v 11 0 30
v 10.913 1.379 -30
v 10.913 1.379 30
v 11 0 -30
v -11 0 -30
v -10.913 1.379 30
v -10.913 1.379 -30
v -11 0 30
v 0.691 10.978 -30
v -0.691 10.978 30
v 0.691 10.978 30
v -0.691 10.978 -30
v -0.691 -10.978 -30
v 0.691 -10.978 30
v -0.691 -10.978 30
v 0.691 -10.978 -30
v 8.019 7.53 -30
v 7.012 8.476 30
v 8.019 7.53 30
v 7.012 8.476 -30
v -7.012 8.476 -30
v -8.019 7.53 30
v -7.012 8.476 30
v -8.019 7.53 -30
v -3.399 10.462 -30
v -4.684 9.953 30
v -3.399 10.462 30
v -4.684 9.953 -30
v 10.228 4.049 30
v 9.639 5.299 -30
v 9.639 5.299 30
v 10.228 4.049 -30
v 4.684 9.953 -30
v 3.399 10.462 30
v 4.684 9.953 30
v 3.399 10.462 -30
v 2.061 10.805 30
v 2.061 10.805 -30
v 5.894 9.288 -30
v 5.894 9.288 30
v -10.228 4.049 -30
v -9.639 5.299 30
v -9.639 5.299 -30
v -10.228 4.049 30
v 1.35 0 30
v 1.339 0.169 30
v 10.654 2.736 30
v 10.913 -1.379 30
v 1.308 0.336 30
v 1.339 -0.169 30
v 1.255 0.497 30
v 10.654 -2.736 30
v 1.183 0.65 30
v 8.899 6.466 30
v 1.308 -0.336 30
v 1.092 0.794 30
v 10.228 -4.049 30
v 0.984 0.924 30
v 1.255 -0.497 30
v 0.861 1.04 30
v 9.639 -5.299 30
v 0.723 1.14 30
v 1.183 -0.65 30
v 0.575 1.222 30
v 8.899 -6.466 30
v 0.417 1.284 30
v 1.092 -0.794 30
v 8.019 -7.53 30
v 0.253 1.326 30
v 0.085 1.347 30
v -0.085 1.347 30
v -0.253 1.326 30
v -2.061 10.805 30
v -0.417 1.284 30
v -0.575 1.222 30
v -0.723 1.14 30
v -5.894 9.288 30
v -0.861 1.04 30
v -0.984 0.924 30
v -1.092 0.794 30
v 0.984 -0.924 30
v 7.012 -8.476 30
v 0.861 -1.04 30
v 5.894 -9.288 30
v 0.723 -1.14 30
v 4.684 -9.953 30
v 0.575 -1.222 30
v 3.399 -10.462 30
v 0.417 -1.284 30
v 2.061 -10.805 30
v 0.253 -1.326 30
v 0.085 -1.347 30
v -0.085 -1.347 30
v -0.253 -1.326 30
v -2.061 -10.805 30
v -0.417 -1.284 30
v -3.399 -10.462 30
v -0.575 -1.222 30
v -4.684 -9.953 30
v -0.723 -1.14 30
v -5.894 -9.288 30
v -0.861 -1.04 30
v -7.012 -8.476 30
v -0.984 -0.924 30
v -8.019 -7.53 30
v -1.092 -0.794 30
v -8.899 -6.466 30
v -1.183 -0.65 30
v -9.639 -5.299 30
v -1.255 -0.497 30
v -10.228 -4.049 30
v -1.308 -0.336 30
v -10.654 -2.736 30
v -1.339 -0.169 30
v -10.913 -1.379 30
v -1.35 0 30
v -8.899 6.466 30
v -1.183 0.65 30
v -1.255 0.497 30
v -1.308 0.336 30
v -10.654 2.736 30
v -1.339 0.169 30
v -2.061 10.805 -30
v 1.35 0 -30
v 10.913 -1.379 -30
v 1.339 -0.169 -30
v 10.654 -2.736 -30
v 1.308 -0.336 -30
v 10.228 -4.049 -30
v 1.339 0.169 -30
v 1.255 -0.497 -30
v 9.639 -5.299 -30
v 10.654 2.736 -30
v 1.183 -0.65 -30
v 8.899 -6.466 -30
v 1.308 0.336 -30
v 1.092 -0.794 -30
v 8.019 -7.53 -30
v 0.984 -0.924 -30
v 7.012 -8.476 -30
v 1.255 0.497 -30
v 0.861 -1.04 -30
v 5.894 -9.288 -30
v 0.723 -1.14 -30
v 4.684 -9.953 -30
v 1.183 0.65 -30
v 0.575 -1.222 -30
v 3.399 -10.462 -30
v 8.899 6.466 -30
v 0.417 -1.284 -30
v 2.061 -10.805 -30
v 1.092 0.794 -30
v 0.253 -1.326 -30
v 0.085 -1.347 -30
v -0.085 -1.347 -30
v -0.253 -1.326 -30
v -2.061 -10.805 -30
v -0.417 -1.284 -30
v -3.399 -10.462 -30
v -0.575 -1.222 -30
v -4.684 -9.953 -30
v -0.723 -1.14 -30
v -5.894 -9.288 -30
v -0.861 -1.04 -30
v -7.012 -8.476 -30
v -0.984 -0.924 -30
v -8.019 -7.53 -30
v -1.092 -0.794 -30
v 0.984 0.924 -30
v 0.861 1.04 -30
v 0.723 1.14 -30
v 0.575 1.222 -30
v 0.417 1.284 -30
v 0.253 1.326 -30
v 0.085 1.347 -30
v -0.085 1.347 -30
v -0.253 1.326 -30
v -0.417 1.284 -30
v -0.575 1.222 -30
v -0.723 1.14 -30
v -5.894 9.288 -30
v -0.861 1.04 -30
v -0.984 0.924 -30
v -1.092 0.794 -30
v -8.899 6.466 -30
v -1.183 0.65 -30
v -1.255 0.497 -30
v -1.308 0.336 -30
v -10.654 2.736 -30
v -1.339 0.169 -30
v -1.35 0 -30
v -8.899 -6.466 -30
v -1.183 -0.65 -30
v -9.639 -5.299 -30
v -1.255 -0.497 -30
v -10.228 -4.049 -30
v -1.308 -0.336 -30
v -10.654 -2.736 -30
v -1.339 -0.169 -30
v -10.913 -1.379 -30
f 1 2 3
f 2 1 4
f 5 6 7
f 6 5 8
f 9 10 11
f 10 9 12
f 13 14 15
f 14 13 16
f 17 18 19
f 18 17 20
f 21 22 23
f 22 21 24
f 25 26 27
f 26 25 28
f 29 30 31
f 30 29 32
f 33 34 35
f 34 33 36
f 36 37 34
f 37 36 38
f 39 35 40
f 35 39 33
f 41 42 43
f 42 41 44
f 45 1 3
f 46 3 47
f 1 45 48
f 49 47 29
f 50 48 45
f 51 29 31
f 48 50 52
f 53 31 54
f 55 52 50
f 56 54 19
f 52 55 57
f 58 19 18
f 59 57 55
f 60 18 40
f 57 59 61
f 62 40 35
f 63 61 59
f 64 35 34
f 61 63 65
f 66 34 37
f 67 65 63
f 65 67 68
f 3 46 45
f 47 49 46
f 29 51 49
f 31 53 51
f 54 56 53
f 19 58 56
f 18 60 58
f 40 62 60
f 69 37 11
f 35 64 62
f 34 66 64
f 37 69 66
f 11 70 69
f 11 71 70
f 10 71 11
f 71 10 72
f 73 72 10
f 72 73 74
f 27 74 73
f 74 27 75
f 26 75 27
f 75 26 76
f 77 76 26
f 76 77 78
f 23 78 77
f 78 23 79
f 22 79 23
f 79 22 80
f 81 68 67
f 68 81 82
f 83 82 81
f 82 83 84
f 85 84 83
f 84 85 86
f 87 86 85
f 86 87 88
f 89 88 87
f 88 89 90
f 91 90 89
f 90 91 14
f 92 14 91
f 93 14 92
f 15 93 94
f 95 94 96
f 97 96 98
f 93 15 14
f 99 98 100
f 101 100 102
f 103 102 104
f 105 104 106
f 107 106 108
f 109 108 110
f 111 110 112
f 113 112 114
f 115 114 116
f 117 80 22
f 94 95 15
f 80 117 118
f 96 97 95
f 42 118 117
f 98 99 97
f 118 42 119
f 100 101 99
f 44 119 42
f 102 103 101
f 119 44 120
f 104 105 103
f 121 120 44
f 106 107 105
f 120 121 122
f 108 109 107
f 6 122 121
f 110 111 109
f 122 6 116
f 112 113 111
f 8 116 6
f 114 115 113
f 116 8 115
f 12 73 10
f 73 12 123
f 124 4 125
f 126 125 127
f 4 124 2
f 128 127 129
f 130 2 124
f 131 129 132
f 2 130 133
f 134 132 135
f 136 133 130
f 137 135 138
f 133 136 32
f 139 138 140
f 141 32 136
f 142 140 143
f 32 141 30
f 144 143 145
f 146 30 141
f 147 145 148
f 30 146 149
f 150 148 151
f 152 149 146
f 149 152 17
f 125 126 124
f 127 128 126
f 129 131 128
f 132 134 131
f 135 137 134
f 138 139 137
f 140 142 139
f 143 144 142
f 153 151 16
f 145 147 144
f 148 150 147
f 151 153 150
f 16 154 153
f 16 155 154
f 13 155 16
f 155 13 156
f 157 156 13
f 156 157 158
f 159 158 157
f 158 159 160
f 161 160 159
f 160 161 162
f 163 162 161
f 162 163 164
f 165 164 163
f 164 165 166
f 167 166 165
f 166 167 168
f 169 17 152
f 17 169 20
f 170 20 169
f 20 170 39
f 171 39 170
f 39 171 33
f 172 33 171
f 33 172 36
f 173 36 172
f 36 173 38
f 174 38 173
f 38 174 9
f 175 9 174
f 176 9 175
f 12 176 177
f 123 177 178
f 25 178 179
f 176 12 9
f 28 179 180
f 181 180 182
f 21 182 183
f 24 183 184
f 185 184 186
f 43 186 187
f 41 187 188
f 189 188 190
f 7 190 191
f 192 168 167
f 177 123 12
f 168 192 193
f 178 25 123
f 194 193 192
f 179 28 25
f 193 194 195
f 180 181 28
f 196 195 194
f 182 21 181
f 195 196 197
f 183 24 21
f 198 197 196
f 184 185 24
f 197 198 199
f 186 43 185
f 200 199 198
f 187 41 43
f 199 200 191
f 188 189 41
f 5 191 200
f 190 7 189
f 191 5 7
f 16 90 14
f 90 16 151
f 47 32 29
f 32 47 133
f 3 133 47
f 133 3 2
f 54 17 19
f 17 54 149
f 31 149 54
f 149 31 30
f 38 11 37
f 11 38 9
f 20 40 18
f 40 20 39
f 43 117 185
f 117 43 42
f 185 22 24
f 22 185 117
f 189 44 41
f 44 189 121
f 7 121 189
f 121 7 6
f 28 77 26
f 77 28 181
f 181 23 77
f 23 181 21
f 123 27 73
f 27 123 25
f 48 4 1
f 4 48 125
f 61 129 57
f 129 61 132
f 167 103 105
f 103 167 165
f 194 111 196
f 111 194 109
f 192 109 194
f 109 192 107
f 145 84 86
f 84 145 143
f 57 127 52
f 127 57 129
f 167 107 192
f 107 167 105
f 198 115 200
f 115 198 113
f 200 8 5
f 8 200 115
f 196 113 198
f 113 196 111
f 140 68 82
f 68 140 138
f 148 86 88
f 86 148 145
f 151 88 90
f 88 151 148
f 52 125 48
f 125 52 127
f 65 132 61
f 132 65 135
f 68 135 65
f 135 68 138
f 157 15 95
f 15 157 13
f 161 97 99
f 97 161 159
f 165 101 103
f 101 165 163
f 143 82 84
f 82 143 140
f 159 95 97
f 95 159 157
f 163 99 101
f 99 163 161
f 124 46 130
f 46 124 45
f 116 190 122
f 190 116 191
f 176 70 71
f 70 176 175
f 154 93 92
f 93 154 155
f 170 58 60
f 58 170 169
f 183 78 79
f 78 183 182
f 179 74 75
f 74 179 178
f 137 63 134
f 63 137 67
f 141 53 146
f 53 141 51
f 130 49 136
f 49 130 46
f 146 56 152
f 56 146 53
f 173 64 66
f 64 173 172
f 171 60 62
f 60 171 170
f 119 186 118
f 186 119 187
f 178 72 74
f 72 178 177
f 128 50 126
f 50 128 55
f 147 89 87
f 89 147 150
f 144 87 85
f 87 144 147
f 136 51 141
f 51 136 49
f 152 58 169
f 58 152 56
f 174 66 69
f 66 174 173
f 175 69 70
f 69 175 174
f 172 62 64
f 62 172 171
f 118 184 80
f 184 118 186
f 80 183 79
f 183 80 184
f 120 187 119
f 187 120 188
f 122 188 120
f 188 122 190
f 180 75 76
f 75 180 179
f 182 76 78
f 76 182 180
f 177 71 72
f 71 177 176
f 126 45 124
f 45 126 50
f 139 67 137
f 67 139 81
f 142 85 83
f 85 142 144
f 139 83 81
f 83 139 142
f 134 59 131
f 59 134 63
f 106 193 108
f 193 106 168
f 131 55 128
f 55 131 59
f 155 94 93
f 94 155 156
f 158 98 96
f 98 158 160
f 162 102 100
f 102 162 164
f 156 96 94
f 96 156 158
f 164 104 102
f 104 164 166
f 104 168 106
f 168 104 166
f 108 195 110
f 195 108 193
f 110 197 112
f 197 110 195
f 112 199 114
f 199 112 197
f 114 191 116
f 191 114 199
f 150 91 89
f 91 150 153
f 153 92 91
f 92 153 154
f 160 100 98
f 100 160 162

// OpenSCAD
$fn = 50;


difference() {
	union() {
		translate(v = [0, 0, -30.0000000000]) {
			cylinder(h = 60, r = 11.0000000000);
		}
	}
	union() {
		translate(v = [0, 0, -100.0000000000]) {
			cylinder(h = 200, r = 1.3500000000);
		}
	}
}
